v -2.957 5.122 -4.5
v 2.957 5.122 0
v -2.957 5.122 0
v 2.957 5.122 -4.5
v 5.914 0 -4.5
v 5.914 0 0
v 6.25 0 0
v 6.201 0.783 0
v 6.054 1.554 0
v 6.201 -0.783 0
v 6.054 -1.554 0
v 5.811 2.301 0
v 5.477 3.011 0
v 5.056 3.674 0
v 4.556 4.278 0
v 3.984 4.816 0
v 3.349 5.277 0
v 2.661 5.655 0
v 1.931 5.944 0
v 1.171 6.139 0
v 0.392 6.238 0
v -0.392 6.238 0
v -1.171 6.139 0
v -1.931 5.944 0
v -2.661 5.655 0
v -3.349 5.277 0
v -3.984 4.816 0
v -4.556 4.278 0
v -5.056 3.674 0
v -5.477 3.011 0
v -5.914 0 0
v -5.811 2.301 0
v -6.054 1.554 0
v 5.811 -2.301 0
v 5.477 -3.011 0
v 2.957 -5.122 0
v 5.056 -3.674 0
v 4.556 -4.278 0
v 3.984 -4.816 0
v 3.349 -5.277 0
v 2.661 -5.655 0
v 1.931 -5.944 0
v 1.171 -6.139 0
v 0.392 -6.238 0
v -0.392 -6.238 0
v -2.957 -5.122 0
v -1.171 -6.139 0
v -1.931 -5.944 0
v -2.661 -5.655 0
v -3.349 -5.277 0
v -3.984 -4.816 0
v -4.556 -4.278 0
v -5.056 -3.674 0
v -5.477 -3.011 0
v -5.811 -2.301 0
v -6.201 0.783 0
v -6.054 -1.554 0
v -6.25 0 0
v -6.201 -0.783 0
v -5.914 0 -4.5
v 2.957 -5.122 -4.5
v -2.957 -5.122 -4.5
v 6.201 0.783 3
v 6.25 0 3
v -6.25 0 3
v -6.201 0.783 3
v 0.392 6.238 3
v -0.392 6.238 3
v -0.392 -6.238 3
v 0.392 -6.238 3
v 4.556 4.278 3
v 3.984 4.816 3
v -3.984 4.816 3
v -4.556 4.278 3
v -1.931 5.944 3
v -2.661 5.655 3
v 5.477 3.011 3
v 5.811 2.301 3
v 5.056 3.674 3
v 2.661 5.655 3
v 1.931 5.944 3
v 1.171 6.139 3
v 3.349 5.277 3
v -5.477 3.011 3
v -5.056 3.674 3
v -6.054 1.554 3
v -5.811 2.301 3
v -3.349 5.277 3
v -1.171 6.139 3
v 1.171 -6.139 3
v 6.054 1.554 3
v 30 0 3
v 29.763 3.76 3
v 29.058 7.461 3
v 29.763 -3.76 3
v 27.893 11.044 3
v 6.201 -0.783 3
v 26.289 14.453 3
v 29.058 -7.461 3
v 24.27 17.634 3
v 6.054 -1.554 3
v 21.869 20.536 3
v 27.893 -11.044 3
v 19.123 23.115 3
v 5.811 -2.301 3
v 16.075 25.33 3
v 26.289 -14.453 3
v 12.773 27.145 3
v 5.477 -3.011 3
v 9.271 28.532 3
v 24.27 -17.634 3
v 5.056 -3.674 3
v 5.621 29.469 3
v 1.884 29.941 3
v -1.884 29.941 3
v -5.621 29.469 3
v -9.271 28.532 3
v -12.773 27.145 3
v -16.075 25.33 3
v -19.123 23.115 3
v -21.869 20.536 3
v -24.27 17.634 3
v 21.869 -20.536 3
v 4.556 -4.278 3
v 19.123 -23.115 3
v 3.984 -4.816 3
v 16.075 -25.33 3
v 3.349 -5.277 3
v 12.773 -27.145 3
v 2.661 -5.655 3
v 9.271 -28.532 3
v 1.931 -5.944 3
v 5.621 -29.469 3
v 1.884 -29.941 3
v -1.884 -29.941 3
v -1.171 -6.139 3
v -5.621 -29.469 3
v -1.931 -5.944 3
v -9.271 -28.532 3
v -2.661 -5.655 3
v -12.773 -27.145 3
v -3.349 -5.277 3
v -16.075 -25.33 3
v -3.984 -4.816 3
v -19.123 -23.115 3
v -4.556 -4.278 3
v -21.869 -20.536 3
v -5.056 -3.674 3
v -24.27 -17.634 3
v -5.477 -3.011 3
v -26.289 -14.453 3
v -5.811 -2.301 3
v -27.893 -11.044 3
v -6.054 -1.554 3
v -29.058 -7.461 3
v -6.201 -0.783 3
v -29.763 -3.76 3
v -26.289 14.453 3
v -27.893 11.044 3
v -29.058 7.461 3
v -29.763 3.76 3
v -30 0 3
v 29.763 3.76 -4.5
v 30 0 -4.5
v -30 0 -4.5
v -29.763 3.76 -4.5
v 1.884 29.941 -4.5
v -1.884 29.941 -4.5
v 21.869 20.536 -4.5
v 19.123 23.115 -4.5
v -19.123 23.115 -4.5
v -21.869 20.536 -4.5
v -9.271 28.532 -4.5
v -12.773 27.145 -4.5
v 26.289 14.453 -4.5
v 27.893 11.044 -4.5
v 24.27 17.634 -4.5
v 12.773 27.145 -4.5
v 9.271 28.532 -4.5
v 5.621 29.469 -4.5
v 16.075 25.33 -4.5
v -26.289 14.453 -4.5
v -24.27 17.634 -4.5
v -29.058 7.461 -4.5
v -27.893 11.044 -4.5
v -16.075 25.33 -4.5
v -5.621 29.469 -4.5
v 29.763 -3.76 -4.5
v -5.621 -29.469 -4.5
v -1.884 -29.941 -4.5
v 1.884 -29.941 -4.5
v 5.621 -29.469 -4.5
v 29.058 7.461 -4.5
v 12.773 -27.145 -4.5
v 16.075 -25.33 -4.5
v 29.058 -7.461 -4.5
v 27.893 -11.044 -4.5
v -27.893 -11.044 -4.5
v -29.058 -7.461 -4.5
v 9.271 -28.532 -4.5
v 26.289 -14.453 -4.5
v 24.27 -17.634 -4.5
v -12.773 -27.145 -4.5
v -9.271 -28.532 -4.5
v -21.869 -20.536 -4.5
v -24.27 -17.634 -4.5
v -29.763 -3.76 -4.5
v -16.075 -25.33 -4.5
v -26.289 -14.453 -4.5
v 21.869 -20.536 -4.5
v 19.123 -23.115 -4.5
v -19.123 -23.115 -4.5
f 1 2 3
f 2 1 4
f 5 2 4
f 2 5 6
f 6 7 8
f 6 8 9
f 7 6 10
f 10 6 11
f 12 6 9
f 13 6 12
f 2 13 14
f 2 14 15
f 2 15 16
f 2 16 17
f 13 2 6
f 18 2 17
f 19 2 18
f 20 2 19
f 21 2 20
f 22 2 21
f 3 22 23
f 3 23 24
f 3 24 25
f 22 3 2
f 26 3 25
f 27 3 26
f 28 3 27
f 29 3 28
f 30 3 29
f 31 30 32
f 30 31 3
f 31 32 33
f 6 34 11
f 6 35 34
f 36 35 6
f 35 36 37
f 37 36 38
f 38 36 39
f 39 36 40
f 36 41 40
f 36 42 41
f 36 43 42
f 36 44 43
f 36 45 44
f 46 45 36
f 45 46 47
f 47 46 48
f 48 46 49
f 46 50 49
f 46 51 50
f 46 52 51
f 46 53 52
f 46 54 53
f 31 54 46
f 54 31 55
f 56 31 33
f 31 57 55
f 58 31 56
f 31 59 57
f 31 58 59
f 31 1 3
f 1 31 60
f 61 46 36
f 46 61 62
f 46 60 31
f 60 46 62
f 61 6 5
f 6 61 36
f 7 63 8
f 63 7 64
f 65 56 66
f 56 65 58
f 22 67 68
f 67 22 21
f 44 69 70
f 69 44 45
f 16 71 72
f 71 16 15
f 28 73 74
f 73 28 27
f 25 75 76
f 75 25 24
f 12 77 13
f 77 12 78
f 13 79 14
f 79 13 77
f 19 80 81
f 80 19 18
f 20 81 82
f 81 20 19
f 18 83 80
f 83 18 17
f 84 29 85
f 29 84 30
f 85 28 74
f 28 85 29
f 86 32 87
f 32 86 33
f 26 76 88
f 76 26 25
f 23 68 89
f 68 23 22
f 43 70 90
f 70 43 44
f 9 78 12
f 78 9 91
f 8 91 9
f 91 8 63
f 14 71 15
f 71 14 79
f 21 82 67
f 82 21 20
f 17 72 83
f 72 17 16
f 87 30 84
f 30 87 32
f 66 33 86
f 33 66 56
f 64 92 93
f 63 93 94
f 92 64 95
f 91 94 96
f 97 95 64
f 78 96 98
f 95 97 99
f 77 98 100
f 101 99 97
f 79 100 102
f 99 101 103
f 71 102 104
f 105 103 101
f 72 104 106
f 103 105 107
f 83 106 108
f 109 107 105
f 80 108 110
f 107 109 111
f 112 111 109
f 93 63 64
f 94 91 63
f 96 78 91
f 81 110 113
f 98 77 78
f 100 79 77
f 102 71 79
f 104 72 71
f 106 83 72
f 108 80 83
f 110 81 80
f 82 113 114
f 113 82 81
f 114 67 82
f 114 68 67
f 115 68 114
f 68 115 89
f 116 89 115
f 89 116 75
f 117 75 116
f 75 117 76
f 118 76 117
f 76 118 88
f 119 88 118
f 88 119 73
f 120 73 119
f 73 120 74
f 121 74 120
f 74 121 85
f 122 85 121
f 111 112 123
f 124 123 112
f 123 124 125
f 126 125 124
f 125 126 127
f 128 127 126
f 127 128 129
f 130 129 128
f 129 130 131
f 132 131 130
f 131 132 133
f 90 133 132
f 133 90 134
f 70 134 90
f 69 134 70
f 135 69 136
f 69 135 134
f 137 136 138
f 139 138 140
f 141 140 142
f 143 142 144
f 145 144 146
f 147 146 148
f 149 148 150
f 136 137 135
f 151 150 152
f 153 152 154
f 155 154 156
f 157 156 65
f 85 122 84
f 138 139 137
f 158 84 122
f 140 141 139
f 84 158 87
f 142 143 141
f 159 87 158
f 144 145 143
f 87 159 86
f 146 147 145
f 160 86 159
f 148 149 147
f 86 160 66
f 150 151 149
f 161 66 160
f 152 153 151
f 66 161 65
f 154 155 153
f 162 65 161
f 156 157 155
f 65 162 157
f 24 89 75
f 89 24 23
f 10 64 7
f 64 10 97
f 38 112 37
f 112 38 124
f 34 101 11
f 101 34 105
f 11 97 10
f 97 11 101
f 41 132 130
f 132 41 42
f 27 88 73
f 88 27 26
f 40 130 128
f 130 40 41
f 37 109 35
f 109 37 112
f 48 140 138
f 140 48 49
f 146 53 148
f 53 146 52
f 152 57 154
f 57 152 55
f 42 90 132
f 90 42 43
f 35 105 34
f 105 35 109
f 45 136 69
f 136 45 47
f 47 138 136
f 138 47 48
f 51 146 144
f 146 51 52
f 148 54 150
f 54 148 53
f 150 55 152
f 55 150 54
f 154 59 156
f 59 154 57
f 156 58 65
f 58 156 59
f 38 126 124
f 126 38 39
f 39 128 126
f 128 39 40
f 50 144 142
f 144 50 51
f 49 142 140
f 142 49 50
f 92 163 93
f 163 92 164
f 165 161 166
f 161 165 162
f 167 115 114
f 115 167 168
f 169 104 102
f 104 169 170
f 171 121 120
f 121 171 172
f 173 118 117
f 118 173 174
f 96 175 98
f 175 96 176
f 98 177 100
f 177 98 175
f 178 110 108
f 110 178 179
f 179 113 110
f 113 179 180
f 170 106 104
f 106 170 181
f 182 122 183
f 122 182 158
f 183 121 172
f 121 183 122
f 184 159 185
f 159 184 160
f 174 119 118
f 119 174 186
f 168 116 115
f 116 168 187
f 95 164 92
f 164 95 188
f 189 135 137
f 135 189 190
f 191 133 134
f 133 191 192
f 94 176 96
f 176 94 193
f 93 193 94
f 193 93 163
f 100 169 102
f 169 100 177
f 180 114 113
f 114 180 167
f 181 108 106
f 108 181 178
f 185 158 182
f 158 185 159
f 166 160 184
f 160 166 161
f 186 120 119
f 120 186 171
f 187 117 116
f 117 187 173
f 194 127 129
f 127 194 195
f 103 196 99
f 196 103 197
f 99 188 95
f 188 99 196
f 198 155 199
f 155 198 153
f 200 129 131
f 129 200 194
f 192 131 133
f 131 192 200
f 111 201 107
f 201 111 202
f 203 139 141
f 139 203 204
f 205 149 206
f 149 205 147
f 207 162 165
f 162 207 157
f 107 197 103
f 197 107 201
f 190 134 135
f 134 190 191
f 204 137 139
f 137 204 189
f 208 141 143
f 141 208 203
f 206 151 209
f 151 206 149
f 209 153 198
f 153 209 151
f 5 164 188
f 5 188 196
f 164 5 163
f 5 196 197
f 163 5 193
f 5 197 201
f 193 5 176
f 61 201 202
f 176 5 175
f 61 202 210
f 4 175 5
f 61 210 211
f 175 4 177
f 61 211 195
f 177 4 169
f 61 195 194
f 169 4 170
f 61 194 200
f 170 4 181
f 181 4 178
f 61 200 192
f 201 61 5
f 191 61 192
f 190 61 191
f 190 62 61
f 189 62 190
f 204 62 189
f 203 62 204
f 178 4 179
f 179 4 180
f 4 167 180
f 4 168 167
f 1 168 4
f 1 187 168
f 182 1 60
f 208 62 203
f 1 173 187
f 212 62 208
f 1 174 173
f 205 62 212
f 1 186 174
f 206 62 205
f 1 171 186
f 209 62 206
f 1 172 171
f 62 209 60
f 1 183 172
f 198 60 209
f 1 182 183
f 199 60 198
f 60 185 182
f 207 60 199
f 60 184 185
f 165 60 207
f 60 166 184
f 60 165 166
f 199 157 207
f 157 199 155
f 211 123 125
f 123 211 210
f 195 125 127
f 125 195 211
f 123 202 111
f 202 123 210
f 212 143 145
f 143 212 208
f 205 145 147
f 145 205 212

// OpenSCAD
$fn = 50;

difference() {
	union() {
		translate(v = [0, 0, -4.5]) {
			cylinder(h = 7.5, r = 30.0);
		}
	}
	union() {
		translate(v = [0, 0, 0]) {
			rotate(a = [0, 0, 0]) {
				difference() {
					union() {
						translate(v = [0, 0, -5]) {
							linear_extrude(height = 5) {
								polygon(points = [[5.914249999999999, 0.0], [2.957125, 5.1218907443321156], [-2.9571249999999982, 5.1218907443321156], [-5.914249999999999, 7.242867331857232e-16], [-2.9571250000000022, -5.121890744332115], [2.9571249999999956, -5.121890744332118]]);
							}
						}
					}
					union();
				}
			}
		}
		#cylinder(h = 3, r = 6.25);
		#translate(v = [0, 0, -100.0]) {
			cylinder(h = 200, r = 3.25);
		}
	}
}
